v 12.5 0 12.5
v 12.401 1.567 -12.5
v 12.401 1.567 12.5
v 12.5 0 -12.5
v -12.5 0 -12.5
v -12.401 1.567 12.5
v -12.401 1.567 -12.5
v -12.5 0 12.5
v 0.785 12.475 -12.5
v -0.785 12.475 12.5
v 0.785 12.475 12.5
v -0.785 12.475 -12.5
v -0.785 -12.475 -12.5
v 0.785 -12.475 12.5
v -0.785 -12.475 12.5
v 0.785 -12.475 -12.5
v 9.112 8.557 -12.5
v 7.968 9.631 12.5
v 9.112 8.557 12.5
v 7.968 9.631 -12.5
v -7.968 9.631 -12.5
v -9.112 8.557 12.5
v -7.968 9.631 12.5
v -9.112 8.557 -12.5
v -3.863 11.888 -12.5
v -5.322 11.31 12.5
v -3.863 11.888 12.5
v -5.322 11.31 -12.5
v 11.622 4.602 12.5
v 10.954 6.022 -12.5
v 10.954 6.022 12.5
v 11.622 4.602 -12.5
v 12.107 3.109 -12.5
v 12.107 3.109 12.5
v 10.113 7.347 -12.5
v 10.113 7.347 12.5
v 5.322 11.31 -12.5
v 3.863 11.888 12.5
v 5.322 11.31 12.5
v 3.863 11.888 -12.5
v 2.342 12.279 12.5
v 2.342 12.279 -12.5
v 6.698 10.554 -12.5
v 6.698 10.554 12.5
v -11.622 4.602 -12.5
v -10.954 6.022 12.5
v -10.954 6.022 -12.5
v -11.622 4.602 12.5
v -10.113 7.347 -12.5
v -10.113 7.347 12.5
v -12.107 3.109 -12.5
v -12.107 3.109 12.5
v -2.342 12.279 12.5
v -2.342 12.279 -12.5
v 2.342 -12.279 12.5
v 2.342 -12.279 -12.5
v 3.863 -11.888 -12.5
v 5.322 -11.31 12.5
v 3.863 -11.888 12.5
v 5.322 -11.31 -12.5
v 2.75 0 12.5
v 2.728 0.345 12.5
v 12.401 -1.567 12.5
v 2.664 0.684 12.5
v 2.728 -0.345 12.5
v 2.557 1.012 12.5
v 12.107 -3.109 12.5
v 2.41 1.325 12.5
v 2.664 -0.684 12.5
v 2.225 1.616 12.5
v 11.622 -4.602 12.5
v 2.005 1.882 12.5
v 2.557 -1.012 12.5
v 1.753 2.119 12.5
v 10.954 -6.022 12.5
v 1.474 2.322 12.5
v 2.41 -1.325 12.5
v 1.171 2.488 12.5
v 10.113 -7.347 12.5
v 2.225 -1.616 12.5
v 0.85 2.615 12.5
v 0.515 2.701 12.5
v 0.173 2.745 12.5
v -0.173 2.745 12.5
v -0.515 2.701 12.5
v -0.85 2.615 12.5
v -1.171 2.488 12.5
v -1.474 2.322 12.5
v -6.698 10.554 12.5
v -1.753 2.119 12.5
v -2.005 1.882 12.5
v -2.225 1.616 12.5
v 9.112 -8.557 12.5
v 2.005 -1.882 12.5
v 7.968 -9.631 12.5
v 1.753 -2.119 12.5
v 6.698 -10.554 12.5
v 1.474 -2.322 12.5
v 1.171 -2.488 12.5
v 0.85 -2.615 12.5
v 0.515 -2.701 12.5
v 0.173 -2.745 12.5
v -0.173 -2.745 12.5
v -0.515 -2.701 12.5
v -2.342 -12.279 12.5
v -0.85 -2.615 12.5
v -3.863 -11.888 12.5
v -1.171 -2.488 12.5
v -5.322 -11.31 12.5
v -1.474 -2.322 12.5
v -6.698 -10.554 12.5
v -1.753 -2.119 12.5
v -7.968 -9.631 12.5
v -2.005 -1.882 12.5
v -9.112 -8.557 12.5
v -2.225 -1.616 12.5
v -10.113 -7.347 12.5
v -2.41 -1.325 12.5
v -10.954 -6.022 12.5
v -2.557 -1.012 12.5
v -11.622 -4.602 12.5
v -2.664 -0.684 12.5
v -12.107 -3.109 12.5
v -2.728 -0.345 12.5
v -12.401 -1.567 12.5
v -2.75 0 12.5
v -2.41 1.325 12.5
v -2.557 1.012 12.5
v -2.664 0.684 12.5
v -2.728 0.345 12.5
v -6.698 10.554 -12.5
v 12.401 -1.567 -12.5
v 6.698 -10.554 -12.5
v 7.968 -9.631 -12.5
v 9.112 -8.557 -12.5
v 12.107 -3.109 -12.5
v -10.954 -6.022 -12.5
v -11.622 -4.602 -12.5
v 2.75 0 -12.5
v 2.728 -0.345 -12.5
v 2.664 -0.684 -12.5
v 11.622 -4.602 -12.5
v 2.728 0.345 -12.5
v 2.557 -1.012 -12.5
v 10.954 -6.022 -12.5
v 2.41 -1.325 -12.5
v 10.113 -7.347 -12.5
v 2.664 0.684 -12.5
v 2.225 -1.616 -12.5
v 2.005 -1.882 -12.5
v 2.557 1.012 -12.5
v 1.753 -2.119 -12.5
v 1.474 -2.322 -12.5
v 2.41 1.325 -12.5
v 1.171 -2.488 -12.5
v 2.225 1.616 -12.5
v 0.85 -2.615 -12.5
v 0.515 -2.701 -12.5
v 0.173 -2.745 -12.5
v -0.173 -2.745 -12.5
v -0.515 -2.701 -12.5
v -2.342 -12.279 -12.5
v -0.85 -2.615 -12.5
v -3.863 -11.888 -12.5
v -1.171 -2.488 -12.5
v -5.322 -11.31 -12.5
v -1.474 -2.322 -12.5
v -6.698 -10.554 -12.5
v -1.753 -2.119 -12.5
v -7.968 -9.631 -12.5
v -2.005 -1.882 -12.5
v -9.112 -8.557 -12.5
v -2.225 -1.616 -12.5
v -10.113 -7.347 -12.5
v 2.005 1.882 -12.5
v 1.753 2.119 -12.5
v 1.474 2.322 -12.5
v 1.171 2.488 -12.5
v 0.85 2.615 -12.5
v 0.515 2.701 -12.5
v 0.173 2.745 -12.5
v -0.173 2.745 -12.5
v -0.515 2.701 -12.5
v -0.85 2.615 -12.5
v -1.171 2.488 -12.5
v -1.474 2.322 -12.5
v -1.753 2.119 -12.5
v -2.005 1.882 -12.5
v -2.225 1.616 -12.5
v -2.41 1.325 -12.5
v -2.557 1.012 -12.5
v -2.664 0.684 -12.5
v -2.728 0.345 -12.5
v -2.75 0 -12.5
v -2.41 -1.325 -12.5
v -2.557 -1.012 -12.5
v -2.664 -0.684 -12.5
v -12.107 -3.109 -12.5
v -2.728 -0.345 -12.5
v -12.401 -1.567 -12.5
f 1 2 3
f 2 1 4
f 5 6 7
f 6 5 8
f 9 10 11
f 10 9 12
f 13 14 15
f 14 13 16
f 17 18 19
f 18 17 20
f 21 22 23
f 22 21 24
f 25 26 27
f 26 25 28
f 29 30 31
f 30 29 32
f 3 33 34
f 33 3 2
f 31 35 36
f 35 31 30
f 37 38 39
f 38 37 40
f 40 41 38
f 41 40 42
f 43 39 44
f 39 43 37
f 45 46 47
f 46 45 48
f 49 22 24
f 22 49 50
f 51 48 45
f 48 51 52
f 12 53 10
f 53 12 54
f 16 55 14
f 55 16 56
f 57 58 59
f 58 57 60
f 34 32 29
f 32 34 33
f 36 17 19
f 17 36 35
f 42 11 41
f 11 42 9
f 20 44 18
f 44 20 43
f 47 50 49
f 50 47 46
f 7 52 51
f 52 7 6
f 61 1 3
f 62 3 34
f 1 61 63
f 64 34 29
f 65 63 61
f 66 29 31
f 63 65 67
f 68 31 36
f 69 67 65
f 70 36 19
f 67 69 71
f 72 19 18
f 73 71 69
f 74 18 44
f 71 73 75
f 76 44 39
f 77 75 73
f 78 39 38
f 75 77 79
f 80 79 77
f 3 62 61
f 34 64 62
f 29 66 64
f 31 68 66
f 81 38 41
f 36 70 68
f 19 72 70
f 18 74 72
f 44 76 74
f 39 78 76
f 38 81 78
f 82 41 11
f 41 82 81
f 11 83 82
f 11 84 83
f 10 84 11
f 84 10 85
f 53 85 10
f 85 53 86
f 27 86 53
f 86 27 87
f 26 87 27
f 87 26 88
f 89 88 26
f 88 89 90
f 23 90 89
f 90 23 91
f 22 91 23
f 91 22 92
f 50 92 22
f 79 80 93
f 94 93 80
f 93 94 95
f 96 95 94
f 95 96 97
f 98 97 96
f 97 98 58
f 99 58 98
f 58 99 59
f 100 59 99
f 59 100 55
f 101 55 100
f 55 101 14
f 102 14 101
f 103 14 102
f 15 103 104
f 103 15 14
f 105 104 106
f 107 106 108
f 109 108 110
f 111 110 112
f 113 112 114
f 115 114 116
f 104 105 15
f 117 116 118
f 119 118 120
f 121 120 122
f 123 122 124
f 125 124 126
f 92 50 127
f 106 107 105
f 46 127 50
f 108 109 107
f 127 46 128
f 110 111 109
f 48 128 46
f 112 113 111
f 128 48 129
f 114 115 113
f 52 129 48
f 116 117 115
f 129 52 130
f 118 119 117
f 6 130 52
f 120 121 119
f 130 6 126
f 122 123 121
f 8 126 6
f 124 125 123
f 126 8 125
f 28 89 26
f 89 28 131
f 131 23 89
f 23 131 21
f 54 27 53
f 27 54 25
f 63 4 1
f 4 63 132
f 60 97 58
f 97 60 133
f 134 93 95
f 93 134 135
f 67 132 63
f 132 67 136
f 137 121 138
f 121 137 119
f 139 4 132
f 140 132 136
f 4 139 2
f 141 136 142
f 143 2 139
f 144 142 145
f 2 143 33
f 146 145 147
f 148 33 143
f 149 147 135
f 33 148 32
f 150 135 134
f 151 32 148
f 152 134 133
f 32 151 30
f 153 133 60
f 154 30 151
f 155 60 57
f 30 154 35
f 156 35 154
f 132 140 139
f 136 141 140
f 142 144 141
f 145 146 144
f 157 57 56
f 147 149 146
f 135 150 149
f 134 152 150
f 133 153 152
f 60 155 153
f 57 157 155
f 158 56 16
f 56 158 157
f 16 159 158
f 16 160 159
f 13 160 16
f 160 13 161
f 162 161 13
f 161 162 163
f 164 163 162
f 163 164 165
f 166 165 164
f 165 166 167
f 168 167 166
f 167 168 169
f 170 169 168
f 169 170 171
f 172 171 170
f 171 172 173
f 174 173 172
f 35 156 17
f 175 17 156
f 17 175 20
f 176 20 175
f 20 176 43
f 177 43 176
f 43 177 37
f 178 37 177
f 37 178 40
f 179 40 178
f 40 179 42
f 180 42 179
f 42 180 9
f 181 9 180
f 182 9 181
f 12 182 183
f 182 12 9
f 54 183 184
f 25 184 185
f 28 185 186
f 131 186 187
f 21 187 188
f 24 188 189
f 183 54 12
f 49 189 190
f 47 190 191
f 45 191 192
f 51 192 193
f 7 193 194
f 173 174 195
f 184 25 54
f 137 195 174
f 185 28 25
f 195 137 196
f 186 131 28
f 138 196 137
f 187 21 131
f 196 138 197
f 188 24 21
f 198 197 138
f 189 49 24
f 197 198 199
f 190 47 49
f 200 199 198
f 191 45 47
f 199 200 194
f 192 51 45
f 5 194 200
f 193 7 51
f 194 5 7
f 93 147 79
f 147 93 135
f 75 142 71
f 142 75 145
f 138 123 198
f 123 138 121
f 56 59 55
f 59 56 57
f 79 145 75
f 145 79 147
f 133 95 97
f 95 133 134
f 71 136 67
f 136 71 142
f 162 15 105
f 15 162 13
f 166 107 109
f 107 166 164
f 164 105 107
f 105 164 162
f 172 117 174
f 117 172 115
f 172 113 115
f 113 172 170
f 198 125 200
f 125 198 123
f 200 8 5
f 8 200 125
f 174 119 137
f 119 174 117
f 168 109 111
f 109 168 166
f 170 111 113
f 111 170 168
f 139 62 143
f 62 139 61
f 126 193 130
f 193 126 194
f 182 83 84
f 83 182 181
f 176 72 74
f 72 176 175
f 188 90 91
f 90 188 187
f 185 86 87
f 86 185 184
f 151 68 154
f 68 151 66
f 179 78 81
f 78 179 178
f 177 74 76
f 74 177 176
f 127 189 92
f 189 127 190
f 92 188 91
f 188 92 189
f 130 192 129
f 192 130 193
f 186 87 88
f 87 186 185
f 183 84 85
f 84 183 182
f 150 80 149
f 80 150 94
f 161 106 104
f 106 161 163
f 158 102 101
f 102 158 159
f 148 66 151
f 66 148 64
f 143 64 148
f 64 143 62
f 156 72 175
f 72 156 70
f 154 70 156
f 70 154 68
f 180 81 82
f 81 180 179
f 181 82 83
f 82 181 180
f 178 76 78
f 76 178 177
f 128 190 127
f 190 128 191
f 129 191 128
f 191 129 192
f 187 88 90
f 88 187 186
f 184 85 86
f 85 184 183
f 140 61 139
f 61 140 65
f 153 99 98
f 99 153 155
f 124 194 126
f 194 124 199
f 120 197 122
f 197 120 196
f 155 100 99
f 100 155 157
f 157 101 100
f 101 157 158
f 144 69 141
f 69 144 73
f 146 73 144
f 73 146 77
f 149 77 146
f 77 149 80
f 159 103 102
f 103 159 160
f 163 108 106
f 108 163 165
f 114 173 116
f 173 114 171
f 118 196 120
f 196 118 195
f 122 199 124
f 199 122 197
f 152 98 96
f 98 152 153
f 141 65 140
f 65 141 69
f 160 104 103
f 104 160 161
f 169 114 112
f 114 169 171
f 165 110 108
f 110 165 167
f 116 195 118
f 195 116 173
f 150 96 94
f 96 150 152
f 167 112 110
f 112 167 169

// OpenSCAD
$fn = 50;


difference() {
	union() {
		translate(v = [0, 0, -12.5000000000]) {
			cylinder(h = 25, r = 12.5000000000);
		}
	}
	union() {
		translate(v = [0, 0, -100.0000000000]) {
			cylinder(h = 200, r = 2.7500000000);
		}
	}
}
